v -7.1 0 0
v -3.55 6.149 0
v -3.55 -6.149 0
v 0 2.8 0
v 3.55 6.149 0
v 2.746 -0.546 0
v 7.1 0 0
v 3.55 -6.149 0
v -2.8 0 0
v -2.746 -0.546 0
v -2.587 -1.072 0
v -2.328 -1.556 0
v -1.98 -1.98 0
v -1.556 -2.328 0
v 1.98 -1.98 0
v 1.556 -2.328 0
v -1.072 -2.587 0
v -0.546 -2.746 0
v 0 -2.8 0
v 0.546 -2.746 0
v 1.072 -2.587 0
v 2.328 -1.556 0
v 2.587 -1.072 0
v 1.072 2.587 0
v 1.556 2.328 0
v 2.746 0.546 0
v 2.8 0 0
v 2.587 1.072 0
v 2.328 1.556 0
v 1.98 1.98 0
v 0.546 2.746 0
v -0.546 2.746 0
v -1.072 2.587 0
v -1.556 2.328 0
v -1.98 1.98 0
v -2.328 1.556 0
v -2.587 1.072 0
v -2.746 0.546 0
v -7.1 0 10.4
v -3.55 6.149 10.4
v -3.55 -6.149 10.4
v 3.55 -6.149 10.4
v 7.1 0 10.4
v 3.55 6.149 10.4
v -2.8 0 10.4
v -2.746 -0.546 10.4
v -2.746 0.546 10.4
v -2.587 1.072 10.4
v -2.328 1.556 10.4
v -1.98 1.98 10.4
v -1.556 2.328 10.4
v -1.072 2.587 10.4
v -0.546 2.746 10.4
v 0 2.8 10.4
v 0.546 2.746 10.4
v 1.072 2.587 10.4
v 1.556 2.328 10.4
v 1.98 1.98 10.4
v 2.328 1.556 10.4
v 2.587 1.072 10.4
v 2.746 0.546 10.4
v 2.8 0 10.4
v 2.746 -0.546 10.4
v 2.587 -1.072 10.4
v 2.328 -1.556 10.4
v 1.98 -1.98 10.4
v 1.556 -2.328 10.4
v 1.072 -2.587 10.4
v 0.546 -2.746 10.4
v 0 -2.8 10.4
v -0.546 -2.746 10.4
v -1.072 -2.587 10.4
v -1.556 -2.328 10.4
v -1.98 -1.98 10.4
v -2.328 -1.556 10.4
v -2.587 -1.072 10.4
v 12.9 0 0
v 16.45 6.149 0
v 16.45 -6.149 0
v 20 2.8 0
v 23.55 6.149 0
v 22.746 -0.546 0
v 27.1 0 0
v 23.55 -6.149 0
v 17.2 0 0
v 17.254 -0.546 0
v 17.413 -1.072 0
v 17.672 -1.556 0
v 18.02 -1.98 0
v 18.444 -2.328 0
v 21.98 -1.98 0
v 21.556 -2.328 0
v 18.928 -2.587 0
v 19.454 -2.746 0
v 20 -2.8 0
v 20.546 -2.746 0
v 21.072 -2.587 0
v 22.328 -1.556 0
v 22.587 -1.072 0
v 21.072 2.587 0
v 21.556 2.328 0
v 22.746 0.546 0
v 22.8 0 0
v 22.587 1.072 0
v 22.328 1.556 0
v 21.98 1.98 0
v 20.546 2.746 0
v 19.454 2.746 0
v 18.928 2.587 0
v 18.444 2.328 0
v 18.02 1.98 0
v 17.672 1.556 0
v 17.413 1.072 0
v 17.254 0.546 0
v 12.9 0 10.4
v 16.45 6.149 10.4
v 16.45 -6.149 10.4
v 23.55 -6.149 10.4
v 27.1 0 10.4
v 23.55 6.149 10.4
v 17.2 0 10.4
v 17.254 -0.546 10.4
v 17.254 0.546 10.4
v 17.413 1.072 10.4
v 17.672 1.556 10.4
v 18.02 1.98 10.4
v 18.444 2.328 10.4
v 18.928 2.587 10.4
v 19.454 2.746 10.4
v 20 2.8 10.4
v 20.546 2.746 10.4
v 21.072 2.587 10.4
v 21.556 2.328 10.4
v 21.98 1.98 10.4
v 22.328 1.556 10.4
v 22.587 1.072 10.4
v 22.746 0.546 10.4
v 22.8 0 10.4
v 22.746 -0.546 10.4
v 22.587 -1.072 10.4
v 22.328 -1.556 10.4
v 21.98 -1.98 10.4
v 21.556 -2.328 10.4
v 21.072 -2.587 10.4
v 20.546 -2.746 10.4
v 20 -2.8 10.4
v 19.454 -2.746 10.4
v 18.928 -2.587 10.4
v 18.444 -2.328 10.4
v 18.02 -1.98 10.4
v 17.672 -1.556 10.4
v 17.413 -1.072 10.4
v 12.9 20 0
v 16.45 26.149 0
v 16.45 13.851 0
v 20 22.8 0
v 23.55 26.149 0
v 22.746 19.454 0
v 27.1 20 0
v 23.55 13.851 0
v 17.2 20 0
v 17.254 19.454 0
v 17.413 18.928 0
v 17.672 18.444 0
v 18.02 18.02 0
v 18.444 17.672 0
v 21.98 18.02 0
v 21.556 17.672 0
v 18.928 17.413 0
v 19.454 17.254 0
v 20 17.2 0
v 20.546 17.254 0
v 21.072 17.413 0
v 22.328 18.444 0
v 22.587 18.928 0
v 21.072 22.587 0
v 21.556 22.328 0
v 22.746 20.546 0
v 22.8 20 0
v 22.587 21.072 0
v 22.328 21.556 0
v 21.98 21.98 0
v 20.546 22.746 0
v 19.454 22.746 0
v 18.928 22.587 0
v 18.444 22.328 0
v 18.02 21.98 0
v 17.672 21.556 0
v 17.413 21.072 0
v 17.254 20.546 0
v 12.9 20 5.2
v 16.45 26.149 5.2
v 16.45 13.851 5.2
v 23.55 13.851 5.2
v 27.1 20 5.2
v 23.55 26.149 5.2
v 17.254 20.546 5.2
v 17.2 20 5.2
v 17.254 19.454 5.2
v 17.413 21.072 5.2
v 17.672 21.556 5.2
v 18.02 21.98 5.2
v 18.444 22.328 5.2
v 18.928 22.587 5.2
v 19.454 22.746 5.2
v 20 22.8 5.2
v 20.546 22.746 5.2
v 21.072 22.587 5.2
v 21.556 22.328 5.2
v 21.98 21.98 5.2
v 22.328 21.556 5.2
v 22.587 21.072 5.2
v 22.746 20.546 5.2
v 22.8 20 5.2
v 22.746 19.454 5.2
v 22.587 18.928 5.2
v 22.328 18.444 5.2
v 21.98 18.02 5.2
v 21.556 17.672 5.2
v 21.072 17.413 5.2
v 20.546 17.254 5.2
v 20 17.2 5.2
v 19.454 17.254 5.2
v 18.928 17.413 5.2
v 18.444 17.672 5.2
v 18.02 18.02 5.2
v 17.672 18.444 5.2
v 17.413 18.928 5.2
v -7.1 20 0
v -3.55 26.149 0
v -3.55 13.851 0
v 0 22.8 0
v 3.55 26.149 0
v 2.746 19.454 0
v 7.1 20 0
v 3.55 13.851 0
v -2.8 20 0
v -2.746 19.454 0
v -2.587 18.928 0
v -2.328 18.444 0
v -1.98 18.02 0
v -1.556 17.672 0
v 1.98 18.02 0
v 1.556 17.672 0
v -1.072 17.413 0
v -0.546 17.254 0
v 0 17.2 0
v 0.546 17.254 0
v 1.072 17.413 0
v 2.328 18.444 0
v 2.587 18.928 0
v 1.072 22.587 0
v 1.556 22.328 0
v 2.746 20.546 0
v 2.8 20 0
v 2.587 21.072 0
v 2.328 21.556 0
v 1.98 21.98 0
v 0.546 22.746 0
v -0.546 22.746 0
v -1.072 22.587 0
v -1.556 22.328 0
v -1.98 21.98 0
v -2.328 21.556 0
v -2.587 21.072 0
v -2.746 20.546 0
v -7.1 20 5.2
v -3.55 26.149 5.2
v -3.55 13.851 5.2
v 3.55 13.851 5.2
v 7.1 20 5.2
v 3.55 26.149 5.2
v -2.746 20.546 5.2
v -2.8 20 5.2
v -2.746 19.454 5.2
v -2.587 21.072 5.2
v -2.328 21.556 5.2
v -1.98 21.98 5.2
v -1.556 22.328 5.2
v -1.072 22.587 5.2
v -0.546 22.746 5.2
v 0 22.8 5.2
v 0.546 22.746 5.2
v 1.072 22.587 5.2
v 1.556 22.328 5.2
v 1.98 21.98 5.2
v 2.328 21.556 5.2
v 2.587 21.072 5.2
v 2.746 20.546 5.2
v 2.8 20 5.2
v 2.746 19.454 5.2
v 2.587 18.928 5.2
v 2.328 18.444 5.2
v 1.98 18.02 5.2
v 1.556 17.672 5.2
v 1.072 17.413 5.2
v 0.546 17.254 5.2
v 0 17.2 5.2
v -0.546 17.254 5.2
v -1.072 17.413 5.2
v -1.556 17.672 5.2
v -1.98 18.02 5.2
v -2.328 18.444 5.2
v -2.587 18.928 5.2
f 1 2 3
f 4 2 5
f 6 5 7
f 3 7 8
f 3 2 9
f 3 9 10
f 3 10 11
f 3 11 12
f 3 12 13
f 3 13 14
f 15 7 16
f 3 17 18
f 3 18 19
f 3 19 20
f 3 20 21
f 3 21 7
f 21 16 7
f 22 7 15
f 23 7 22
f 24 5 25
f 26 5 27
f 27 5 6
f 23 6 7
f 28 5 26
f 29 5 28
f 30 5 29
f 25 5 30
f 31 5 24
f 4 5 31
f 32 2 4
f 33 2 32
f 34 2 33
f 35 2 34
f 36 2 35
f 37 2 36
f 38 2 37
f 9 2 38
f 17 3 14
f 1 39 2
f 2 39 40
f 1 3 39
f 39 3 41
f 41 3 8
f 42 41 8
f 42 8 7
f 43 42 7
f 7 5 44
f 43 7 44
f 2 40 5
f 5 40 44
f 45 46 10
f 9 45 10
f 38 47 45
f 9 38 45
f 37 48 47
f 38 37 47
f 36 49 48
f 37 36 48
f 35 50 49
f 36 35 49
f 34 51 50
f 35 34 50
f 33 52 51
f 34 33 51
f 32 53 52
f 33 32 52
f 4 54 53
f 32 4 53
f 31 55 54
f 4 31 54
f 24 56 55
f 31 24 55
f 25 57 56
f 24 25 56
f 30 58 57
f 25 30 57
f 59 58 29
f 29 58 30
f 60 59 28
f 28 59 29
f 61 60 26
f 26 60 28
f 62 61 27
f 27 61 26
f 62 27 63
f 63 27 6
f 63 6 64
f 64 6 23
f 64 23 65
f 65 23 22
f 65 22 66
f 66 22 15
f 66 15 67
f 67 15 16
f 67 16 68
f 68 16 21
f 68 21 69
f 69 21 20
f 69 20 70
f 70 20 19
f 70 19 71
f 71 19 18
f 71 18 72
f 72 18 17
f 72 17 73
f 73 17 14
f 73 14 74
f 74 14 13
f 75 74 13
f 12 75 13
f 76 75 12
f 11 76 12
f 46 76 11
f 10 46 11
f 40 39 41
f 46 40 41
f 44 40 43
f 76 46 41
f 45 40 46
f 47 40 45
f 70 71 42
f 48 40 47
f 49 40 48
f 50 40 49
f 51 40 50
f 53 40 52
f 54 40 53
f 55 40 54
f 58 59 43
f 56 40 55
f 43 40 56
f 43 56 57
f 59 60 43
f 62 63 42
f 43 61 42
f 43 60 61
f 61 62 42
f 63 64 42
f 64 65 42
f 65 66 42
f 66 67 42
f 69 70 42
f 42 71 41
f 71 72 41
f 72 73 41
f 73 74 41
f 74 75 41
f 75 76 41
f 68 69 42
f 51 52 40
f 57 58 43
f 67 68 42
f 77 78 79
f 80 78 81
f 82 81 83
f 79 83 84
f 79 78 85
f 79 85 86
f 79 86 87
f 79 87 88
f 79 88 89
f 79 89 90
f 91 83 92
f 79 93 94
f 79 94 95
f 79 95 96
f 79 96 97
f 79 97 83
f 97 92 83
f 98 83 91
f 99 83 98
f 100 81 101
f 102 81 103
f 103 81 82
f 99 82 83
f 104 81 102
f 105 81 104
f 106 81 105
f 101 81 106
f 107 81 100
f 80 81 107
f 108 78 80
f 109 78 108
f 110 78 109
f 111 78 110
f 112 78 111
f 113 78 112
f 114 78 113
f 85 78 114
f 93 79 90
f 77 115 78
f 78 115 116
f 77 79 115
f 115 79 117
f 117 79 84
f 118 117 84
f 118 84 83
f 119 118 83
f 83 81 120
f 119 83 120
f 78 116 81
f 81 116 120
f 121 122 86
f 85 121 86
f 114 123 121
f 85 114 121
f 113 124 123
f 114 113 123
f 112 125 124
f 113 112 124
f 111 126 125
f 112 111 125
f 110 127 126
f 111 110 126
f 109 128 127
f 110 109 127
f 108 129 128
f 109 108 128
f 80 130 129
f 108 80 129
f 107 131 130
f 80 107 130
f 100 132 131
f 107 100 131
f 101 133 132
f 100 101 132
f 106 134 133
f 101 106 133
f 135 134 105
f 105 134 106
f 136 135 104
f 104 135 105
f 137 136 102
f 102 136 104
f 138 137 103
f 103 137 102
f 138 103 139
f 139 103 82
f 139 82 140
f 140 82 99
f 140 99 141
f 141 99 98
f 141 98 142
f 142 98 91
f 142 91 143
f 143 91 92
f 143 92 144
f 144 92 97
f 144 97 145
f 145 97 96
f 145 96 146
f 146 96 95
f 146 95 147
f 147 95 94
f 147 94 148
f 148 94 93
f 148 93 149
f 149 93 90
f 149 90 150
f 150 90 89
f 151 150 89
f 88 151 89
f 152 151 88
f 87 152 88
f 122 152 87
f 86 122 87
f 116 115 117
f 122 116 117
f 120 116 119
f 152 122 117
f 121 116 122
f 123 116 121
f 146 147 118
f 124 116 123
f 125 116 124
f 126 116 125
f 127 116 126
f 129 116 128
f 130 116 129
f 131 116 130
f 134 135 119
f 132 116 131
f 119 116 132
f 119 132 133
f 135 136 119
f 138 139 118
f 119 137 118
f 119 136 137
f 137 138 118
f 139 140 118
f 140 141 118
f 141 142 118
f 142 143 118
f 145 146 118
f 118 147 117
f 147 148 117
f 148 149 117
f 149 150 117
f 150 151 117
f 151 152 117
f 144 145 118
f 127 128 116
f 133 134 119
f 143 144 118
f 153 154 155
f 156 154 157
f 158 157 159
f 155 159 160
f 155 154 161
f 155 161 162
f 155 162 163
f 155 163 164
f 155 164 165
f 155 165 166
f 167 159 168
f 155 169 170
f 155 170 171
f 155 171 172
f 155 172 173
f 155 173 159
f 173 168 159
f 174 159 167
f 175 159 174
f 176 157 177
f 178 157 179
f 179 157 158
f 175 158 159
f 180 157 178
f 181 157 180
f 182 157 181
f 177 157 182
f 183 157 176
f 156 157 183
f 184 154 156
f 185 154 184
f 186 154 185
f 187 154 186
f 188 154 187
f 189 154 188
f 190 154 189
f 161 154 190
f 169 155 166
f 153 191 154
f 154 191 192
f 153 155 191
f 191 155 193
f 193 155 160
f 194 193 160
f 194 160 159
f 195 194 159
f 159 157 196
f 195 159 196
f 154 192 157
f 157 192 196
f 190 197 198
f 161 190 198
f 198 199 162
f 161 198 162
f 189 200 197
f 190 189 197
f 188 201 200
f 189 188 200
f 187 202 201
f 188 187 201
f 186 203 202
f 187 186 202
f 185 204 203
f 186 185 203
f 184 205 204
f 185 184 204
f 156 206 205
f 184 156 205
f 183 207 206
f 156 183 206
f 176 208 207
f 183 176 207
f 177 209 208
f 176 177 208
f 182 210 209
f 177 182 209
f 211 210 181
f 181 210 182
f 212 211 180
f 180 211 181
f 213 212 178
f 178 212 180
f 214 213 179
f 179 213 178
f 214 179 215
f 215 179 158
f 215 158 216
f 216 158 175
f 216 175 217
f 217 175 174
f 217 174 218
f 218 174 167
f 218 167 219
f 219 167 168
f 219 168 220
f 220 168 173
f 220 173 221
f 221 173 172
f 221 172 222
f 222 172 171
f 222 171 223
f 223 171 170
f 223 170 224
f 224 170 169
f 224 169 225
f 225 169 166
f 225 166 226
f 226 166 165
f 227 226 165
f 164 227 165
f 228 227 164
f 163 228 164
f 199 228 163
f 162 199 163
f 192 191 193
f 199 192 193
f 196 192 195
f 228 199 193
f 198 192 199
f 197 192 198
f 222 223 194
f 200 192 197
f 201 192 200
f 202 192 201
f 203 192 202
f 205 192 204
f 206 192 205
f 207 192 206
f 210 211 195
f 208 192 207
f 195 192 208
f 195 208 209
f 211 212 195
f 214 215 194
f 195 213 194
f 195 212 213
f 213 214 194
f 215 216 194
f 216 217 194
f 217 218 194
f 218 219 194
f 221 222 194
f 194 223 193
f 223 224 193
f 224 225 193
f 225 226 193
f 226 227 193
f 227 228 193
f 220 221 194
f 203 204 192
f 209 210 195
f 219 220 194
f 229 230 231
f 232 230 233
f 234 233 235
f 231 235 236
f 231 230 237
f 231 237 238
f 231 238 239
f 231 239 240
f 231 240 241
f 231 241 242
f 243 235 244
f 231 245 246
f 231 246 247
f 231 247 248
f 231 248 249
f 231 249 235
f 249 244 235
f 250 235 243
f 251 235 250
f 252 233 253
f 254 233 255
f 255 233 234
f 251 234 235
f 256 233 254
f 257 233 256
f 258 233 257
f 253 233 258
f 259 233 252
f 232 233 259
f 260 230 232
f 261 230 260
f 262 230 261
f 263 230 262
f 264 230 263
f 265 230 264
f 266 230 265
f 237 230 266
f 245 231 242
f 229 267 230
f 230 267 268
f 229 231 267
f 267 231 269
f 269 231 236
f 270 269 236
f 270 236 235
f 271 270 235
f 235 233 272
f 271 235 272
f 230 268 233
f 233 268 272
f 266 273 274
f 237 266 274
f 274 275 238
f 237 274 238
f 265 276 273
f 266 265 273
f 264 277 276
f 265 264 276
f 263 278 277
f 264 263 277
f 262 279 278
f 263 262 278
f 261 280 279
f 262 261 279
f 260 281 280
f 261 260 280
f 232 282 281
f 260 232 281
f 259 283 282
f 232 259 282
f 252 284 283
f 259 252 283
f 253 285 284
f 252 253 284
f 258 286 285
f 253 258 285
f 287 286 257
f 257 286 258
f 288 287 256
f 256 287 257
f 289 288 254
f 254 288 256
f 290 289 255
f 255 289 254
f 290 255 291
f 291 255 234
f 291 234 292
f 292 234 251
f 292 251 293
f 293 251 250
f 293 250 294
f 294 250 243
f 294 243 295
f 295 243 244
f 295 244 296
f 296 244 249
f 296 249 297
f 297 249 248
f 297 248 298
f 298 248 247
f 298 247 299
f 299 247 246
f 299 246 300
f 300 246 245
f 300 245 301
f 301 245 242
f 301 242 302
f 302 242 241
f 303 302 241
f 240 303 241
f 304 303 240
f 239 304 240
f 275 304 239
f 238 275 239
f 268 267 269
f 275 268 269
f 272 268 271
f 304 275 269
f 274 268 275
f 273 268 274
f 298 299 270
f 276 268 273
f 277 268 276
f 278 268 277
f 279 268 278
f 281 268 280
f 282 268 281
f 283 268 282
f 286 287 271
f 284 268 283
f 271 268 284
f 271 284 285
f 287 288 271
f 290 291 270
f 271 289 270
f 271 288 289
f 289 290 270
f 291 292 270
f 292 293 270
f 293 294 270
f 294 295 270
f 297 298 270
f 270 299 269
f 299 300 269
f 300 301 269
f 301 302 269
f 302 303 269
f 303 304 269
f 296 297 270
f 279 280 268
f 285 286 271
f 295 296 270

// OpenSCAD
base_thickness = 1.5; 
m8_nut_dia = 14.5; // was 14.38
m6_nut_dia = 11.5;
m6_nut_height = 5.2;
gap = .15; // leave gap around all edges
m6_thread_bore = 5;

// size of m8 nut - gap
function m8_rad()  = m8_nut_dia / 2 - gap;

function nut_height() = m6_nut_height * 2;

four_nuts();

module four_nuts(){
	adapter(nut_height());
	translate([20,0,0]) adapter(nut_height());
	translate([20,20,0]) adapter(nut_height() / 2);
	translate([0,20,0]) adapter(nut_height() / 2);
}




module adapter(height){
	difference(){
		cylinder(r=m8_rad(), h = height, $fn=6);
		
		// subtract cutout for m6 bore
	
		translate([0, 0, -.1])
		cylinder(r=m6_thread_bore / 2 + 2 * gap, h = height + .2, $fn=32);
	}
}
